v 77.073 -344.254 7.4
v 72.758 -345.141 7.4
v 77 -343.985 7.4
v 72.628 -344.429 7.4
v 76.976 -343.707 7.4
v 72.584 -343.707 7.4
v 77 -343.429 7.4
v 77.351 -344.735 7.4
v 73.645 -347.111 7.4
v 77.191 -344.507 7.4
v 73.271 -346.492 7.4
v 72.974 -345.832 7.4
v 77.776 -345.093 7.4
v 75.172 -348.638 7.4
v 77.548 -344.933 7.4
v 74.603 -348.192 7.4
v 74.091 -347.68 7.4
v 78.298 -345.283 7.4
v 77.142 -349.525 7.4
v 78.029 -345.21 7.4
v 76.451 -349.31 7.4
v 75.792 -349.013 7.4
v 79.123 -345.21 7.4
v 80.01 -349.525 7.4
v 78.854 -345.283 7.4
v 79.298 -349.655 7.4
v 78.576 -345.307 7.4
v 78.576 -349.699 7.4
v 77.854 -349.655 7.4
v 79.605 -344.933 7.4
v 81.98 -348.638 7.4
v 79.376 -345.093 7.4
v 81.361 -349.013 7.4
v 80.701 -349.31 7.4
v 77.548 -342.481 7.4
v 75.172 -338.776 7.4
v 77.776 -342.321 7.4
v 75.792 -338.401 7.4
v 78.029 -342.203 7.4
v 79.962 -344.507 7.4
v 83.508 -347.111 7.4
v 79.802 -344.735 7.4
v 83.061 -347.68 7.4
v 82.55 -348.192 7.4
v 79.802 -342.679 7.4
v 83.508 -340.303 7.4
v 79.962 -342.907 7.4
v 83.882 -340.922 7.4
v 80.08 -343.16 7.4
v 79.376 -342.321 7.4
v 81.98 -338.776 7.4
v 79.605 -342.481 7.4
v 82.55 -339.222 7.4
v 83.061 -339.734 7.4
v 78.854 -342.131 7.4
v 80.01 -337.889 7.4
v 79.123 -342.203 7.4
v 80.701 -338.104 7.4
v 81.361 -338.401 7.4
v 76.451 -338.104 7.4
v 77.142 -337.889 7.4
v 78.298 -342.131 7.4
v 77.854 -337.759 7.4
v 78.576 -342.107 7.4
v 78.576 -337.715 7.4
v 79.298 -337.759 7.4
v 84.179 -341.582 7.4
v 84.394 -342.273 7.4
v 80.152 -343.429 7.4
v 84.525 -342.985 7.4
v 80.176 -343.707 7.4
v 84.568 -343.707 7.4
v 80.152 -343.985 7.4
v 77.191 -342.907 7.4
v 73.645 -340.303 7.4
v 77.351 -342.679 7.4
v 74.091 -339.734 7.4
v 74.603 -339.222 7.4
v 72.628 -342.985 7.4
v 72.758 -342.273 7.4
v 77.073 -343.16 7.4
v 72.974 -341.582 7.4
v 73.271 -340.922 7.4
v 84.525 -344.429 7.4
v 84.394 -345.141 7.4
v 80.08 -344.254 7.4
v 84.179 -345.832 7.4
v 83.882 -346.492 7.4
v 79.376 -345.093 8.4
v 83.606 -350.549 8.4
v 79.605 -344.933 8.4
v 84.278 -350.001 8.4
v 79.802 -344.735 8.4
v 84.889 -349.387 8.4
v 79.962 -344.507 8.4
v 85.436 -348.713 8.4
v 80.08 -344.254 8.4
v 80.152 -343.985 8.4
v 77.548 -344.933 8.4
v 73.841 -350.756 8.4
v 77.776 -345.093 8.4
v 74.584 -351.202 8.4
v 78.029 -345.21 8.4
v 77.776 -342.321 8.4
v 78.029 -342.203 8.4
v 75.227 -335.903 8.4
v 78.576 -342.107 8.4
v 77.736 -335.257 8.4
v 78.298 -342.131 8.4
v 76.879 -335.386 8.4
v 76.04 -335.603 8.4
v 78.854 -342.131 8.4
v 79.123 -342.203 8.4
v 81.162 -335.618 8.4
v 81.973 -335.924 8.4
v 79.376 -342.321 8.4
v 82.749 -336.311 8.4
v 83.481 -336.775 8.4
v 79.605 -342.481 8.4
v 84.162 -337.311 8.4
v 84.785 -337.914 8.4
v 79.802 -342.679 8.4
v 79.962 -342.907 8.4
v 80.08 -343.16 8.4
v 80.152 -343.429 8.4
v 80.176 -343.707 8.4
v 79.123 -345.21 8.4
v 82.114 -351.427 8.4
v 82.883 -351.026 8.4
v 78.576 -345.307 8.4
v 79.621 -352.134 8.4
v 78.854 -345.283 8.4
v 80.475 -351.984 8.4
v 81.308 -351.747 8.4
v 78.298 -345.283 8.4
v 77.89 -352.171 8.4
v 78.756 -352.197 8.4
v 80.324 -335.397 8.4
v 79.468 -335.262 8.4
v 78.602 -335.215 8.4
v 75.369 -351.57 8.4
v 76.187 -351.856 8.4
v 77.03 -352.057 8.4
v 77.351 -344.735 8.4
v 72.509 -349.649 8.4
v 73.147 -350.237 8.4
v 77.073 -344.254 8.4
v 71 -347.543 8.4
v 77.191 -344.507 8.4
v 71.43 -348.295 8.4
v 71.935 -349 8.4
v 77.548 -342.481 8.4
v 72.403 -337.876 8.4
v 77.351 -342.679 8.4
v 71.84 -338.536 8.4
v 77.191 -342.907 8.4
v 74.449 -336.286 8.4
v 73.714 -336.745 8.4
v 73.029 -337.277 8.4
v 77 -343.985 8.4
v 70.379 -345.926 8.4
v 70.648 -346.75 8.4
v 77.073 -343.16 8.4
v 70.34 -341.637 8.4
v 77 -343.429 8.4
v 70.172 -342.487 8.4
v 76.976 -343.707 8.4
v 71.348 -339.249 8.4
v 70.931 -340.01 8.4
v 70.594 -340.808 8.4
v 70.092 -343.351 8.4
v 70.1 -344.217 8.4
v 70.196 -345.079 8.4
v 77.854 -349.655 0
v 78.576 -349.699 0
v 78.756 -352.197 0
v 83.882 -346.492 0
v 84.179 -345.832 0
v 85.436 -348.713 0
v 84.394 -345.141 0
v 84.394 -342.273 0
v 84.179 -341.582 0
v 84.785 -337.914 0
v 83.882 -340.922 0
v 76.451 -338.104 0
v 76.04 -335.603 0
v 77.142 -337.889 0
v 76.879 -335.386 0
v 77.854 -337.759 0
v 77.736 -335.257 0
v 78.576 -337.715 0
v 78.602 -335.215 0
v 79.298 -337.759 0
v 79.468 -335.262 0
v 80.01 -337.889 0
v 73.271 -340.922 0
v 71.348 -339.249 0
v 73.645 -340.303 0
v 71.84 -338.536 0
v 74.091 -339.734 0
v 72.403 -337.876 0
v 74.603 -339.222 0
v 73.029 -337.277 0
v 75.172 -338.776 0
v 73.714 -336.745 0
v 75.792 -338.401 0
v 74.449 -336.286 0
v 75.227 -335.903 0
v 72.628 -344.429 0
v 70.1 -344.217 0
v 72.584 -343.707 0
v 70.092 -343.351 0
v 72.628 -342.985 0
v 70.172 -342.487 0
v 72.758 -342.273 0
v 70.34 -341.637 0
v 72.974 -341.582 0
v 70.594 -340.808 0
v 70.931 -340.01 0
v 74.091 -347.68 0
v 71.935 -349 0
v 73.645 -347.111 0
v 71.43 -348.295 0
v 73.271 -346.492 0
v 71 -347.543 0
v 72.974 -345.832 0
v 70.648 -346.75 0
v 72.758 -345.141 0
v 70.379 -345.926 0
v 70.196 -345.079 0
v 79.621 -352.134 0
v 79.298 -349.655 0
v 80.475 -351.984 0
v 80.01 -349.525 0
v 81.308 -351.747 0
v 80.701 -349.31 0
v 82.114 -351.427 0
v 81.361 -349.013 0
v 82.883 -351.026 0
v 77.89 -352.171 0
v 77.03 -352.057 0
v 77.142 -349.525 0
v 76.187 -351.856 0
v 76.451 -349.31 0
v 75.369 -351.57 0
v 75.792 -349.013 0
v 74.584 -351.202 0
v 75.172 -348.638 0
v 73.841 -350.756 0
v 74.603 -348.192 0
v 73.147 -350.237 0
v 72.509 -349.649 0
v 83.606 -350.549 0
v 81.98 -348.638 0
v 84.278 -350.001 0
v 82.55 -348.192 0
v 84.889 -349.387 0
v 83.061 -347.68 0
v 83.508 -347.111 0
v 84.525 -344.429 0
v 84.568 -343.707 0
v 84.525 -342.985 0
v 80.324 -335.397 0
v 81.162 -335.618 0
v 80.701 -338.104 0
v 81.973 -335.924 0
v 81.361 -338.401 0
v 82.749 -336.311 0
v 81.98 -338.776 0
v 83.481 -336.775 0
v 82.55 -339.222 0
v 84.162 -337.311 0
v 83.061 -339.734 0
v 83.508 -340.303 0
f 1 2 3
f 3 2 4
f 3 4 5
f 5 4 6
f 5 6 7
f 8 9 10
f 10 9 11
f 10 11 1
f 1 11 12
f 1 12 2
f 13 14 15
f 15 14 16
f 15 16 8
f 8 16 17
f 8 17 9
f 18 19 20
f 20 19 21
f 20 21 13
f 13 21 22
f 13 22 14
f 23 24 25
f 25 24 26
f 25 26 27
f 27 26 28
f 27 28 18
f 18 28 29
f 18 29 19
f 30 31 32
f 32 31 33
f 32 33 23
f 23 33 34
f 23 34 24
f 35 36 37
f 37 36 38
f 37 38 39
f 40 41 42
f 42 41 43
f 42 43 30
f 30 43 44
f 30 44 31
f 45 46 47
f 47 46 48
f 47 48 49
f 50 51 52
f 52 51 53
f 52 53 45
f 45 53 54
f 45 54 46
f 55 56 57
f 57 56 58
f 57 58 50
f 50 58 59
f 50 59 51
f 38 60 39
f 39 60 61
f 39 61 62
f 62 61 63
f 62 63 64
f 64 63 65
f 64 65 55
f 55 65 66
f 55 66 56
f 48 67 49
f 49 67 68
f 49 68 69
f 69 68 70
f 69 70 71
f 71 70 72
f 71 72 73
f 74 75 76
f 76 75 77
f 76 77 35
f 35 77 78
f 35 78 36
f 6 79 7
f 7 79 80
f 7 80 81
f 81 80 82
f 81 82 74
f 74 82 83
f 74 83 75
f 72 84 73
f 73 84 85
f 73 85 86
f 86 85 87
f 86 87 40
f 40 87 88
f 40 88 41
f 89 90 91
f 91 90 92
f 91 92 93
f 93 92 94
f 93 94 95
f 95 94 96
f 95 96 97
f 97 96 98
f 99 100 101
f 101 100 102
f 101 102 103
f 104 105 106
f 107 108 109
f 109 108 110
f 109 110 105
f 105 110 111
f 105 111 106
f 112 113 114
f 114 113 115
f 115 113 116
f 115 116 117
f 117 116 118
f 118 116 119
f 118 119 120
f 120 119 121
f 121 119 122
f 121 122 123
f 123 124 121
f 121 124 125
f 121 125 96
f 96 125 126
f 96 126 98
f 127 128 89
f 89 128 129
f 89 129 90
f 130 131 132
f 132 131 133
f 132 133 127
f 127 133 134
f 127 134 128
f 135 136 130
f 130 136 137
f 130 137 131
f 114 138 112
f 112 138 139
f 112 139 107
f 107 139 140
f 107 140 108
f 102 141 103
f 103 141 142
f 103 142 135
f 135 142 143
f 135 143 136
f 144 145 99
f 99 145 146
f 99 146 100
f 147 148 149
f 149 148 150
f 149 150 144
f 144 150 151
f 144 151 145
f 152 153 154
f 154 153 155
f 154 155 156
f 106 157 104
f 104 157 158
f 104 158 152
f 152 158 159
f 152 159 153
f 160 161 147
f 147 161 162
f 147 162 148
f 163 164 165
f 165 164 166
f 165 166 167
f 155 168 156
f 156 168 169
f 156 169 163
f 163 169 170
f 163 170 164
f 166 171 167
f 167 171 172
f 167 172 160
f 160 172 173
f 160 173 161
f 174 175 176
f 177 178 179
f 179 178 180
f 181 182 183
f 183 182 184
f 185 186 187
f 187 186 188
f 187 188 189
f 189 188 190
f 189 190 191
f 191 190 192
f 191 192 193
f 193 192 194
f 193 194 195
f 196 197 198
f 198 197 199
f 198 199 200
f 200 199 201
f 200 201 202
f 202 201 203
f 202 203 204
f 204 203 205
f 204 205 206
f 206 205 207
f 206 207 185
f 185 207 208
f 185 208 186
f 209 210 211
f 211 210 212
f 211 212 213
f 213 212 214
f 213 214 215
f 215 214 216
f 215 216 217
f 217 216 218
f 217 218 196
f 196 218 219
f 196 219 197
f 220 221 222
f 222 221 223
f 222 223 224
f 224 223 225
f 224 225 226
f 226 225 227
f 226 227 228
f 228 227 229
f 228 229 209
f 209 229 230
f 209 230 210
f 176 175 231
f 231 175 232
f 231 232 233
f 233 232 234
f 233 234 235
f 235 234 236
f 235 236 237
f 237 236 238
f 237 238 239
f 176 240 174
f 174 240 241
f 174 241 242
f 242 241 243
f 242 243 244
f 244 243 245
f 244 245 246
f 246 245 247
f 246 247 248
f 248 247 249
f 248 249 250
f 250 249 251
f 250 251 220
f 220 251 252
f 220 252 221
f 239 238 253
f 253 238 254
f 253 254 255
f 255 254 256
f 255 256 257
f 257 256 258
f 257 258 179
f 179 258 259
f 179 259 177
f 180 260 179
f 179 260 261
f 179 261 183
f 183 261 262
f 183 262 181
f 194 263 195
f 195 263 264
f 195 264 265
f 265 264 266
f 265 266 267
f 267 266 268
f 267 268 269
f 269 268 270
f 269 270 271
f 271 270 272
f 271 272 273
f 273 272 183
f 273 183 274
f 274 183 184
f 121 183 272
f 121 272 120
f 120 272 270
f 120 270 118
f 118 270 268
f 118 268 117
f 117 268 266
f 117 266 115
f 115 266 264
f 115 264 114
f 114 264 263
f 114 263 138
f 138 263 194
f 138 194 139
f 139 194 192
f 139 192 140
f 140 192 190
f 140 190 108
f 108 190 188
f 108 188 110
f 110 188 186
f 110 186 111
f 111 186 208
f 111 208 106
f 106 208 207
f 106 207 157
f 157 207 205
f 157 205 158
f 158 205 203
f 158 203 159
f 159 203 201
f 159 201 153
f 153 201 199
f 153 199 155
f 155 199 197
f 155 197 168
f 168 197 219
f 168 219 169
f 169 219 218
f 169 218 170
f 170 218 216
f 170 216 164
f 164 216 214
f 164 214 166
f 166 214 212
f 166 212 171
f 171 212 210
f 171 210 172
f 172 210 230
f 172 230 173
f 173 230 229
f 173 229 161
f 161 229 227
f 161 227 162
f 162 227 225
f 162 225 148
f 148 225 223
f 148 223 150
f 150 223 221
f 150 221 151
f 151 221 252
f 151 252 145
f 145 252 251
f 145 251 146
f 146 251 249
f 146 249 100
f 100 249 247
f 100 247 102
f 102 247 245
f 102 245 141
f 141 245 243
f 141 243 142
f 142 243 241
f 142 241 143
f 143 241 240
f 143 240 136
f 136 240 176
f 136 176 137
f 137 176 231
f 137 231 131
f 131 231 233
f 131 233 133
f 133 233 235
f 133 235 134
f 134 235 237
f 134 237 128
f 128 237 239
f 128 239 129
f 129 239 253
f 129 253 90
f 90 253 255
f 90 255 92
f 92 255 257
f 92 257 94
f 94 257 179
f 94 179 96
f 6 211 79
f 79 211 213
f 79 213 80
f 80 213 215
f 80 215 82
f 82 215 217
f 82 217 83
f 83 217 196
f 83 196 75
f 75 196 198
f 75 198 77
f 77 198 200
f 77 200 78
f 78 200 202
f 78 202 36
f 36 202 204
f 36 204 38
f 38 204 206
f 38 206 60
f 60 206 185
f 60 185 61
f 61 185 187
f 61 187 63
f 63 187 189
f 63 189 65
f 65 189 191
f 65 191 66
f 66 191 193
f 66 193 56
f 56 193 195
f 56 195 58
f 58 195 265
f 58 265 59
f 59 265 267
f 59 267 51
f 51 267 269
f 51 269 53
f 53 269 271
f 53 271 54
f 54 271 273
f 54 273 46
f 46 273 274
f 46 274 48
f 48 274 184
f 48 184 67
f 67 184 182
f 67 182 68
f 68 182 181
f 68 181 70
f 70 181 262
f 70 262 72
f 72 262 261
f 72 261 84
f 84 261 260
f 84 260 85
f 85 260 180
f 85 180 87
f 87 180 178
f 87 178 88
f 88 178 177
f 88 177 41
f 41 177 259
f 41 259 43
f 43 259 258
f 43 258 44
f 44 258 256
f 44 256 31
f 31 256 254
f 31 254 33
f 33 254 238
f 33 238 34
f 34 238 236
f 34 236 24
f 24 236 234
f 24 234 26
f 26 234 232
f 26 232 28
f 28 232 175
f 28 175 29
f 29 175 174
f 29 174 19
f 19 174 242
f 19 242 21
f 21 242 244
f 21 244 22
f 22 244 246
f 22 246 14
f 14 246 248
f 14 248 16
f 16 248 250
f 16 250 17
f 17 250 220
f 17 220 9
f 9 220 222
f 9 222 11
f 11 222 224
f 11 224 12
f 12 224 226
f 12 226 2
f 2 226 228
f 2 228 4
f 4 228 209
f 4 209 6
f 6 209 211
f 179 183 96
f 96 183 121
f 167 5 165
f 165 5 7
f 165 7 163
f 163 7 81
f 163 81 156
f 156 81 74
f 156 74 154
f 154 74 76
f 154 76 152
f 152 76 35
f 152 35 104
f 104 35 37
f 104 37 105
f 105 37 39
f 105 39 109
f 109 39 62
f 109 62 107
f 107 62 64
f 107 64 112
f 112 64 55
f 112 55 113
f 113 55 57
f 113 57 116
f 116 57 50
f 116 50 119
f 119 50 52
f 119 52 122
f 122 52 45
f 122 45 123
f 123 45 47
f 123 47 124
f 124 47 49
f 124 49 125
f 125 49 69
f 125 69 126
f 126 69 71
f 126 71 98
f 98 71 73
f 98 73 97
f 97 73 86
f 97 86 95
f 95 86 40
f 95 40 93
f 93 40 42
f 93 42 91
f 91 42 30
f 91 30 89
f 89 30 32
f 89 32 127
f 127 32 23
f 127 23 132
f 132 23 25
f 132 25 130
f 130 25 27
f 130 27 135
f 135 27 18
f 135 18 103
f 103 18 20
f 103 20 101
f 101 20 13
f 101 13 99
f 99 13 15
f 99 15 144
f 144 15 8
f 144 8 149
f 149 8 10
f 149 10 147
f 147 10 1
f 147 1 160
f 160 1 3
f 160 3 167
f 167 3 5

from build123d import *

# Parameters (mm, degrees)
SKETCH1_R            = 8.492006583
SKETCH1_R_2          = 5.992006583
BOSS_EXTRUDE1_DEPTH  = 7.4
SKETCH2_R            = 8.492006583
BOSS_EXTRUDE2_DEPTH  = 1
CUT_EXTRUDE1_DEPTH   = 18.3
M3_CLEARANCE_HOLE1_D = 3.2


with BuildPart() as part:
    # Sketch1 → Boss-Extrude1 (new body)
    with BuildSketch(Plane.XY):
        with Locations((78.5761931, -343.7069923)):
            Circle(SKETCH1_R)
        with Locations((78.5761931, -343.7069923)):
            Circle(SKETCH1_R_2, mode=Mode.SUBTRACT)
    extrude(amount=BOSS_EXTRUDE1_DEPTH)

    # Sketch2 → Boss-Extrude2 (add)
    with BuildSketch(Plane.XY.offset(7.4)):
        with Locations((78.5761931, -343.7069923)):
            Circle(SKETCH2_R)
    extrude(amount=BOSS_EXTRUDE2_DEPTH)

    # Sketch3 → Cut-Extrude1 (cut)
    with BuildSketch(Plane(origin=(0, 0, 0), x_dir=(-1, 0, 0), z_dir=(0, 0, -1))):
        with BuildLine():
            Line((-84.785347699, -337.913843331), (-85.435569051, -348.713302055))
            ThreePointArc((-85.435569051, -348.713302055), (-87.052849272, -343.196623866), (-84.785347699, -337.913843331))
        make_face()
    extrude(amount=-CUT_EXTRUDE1_DEPTH, mode=Mode.SUBTRACT)

    # M3 Clearance Hole1 (through all)
    with Locations(Plane(origin=(0, 0, 7.4), x_dir=(-1, 0, 0), z_dir=(0, 0, -1))):
        with Locations((-78.5761931, -343.7069923)):
            Hole(M3_CLEARANCE_HOLE1_D / 2)


solid = part.part
